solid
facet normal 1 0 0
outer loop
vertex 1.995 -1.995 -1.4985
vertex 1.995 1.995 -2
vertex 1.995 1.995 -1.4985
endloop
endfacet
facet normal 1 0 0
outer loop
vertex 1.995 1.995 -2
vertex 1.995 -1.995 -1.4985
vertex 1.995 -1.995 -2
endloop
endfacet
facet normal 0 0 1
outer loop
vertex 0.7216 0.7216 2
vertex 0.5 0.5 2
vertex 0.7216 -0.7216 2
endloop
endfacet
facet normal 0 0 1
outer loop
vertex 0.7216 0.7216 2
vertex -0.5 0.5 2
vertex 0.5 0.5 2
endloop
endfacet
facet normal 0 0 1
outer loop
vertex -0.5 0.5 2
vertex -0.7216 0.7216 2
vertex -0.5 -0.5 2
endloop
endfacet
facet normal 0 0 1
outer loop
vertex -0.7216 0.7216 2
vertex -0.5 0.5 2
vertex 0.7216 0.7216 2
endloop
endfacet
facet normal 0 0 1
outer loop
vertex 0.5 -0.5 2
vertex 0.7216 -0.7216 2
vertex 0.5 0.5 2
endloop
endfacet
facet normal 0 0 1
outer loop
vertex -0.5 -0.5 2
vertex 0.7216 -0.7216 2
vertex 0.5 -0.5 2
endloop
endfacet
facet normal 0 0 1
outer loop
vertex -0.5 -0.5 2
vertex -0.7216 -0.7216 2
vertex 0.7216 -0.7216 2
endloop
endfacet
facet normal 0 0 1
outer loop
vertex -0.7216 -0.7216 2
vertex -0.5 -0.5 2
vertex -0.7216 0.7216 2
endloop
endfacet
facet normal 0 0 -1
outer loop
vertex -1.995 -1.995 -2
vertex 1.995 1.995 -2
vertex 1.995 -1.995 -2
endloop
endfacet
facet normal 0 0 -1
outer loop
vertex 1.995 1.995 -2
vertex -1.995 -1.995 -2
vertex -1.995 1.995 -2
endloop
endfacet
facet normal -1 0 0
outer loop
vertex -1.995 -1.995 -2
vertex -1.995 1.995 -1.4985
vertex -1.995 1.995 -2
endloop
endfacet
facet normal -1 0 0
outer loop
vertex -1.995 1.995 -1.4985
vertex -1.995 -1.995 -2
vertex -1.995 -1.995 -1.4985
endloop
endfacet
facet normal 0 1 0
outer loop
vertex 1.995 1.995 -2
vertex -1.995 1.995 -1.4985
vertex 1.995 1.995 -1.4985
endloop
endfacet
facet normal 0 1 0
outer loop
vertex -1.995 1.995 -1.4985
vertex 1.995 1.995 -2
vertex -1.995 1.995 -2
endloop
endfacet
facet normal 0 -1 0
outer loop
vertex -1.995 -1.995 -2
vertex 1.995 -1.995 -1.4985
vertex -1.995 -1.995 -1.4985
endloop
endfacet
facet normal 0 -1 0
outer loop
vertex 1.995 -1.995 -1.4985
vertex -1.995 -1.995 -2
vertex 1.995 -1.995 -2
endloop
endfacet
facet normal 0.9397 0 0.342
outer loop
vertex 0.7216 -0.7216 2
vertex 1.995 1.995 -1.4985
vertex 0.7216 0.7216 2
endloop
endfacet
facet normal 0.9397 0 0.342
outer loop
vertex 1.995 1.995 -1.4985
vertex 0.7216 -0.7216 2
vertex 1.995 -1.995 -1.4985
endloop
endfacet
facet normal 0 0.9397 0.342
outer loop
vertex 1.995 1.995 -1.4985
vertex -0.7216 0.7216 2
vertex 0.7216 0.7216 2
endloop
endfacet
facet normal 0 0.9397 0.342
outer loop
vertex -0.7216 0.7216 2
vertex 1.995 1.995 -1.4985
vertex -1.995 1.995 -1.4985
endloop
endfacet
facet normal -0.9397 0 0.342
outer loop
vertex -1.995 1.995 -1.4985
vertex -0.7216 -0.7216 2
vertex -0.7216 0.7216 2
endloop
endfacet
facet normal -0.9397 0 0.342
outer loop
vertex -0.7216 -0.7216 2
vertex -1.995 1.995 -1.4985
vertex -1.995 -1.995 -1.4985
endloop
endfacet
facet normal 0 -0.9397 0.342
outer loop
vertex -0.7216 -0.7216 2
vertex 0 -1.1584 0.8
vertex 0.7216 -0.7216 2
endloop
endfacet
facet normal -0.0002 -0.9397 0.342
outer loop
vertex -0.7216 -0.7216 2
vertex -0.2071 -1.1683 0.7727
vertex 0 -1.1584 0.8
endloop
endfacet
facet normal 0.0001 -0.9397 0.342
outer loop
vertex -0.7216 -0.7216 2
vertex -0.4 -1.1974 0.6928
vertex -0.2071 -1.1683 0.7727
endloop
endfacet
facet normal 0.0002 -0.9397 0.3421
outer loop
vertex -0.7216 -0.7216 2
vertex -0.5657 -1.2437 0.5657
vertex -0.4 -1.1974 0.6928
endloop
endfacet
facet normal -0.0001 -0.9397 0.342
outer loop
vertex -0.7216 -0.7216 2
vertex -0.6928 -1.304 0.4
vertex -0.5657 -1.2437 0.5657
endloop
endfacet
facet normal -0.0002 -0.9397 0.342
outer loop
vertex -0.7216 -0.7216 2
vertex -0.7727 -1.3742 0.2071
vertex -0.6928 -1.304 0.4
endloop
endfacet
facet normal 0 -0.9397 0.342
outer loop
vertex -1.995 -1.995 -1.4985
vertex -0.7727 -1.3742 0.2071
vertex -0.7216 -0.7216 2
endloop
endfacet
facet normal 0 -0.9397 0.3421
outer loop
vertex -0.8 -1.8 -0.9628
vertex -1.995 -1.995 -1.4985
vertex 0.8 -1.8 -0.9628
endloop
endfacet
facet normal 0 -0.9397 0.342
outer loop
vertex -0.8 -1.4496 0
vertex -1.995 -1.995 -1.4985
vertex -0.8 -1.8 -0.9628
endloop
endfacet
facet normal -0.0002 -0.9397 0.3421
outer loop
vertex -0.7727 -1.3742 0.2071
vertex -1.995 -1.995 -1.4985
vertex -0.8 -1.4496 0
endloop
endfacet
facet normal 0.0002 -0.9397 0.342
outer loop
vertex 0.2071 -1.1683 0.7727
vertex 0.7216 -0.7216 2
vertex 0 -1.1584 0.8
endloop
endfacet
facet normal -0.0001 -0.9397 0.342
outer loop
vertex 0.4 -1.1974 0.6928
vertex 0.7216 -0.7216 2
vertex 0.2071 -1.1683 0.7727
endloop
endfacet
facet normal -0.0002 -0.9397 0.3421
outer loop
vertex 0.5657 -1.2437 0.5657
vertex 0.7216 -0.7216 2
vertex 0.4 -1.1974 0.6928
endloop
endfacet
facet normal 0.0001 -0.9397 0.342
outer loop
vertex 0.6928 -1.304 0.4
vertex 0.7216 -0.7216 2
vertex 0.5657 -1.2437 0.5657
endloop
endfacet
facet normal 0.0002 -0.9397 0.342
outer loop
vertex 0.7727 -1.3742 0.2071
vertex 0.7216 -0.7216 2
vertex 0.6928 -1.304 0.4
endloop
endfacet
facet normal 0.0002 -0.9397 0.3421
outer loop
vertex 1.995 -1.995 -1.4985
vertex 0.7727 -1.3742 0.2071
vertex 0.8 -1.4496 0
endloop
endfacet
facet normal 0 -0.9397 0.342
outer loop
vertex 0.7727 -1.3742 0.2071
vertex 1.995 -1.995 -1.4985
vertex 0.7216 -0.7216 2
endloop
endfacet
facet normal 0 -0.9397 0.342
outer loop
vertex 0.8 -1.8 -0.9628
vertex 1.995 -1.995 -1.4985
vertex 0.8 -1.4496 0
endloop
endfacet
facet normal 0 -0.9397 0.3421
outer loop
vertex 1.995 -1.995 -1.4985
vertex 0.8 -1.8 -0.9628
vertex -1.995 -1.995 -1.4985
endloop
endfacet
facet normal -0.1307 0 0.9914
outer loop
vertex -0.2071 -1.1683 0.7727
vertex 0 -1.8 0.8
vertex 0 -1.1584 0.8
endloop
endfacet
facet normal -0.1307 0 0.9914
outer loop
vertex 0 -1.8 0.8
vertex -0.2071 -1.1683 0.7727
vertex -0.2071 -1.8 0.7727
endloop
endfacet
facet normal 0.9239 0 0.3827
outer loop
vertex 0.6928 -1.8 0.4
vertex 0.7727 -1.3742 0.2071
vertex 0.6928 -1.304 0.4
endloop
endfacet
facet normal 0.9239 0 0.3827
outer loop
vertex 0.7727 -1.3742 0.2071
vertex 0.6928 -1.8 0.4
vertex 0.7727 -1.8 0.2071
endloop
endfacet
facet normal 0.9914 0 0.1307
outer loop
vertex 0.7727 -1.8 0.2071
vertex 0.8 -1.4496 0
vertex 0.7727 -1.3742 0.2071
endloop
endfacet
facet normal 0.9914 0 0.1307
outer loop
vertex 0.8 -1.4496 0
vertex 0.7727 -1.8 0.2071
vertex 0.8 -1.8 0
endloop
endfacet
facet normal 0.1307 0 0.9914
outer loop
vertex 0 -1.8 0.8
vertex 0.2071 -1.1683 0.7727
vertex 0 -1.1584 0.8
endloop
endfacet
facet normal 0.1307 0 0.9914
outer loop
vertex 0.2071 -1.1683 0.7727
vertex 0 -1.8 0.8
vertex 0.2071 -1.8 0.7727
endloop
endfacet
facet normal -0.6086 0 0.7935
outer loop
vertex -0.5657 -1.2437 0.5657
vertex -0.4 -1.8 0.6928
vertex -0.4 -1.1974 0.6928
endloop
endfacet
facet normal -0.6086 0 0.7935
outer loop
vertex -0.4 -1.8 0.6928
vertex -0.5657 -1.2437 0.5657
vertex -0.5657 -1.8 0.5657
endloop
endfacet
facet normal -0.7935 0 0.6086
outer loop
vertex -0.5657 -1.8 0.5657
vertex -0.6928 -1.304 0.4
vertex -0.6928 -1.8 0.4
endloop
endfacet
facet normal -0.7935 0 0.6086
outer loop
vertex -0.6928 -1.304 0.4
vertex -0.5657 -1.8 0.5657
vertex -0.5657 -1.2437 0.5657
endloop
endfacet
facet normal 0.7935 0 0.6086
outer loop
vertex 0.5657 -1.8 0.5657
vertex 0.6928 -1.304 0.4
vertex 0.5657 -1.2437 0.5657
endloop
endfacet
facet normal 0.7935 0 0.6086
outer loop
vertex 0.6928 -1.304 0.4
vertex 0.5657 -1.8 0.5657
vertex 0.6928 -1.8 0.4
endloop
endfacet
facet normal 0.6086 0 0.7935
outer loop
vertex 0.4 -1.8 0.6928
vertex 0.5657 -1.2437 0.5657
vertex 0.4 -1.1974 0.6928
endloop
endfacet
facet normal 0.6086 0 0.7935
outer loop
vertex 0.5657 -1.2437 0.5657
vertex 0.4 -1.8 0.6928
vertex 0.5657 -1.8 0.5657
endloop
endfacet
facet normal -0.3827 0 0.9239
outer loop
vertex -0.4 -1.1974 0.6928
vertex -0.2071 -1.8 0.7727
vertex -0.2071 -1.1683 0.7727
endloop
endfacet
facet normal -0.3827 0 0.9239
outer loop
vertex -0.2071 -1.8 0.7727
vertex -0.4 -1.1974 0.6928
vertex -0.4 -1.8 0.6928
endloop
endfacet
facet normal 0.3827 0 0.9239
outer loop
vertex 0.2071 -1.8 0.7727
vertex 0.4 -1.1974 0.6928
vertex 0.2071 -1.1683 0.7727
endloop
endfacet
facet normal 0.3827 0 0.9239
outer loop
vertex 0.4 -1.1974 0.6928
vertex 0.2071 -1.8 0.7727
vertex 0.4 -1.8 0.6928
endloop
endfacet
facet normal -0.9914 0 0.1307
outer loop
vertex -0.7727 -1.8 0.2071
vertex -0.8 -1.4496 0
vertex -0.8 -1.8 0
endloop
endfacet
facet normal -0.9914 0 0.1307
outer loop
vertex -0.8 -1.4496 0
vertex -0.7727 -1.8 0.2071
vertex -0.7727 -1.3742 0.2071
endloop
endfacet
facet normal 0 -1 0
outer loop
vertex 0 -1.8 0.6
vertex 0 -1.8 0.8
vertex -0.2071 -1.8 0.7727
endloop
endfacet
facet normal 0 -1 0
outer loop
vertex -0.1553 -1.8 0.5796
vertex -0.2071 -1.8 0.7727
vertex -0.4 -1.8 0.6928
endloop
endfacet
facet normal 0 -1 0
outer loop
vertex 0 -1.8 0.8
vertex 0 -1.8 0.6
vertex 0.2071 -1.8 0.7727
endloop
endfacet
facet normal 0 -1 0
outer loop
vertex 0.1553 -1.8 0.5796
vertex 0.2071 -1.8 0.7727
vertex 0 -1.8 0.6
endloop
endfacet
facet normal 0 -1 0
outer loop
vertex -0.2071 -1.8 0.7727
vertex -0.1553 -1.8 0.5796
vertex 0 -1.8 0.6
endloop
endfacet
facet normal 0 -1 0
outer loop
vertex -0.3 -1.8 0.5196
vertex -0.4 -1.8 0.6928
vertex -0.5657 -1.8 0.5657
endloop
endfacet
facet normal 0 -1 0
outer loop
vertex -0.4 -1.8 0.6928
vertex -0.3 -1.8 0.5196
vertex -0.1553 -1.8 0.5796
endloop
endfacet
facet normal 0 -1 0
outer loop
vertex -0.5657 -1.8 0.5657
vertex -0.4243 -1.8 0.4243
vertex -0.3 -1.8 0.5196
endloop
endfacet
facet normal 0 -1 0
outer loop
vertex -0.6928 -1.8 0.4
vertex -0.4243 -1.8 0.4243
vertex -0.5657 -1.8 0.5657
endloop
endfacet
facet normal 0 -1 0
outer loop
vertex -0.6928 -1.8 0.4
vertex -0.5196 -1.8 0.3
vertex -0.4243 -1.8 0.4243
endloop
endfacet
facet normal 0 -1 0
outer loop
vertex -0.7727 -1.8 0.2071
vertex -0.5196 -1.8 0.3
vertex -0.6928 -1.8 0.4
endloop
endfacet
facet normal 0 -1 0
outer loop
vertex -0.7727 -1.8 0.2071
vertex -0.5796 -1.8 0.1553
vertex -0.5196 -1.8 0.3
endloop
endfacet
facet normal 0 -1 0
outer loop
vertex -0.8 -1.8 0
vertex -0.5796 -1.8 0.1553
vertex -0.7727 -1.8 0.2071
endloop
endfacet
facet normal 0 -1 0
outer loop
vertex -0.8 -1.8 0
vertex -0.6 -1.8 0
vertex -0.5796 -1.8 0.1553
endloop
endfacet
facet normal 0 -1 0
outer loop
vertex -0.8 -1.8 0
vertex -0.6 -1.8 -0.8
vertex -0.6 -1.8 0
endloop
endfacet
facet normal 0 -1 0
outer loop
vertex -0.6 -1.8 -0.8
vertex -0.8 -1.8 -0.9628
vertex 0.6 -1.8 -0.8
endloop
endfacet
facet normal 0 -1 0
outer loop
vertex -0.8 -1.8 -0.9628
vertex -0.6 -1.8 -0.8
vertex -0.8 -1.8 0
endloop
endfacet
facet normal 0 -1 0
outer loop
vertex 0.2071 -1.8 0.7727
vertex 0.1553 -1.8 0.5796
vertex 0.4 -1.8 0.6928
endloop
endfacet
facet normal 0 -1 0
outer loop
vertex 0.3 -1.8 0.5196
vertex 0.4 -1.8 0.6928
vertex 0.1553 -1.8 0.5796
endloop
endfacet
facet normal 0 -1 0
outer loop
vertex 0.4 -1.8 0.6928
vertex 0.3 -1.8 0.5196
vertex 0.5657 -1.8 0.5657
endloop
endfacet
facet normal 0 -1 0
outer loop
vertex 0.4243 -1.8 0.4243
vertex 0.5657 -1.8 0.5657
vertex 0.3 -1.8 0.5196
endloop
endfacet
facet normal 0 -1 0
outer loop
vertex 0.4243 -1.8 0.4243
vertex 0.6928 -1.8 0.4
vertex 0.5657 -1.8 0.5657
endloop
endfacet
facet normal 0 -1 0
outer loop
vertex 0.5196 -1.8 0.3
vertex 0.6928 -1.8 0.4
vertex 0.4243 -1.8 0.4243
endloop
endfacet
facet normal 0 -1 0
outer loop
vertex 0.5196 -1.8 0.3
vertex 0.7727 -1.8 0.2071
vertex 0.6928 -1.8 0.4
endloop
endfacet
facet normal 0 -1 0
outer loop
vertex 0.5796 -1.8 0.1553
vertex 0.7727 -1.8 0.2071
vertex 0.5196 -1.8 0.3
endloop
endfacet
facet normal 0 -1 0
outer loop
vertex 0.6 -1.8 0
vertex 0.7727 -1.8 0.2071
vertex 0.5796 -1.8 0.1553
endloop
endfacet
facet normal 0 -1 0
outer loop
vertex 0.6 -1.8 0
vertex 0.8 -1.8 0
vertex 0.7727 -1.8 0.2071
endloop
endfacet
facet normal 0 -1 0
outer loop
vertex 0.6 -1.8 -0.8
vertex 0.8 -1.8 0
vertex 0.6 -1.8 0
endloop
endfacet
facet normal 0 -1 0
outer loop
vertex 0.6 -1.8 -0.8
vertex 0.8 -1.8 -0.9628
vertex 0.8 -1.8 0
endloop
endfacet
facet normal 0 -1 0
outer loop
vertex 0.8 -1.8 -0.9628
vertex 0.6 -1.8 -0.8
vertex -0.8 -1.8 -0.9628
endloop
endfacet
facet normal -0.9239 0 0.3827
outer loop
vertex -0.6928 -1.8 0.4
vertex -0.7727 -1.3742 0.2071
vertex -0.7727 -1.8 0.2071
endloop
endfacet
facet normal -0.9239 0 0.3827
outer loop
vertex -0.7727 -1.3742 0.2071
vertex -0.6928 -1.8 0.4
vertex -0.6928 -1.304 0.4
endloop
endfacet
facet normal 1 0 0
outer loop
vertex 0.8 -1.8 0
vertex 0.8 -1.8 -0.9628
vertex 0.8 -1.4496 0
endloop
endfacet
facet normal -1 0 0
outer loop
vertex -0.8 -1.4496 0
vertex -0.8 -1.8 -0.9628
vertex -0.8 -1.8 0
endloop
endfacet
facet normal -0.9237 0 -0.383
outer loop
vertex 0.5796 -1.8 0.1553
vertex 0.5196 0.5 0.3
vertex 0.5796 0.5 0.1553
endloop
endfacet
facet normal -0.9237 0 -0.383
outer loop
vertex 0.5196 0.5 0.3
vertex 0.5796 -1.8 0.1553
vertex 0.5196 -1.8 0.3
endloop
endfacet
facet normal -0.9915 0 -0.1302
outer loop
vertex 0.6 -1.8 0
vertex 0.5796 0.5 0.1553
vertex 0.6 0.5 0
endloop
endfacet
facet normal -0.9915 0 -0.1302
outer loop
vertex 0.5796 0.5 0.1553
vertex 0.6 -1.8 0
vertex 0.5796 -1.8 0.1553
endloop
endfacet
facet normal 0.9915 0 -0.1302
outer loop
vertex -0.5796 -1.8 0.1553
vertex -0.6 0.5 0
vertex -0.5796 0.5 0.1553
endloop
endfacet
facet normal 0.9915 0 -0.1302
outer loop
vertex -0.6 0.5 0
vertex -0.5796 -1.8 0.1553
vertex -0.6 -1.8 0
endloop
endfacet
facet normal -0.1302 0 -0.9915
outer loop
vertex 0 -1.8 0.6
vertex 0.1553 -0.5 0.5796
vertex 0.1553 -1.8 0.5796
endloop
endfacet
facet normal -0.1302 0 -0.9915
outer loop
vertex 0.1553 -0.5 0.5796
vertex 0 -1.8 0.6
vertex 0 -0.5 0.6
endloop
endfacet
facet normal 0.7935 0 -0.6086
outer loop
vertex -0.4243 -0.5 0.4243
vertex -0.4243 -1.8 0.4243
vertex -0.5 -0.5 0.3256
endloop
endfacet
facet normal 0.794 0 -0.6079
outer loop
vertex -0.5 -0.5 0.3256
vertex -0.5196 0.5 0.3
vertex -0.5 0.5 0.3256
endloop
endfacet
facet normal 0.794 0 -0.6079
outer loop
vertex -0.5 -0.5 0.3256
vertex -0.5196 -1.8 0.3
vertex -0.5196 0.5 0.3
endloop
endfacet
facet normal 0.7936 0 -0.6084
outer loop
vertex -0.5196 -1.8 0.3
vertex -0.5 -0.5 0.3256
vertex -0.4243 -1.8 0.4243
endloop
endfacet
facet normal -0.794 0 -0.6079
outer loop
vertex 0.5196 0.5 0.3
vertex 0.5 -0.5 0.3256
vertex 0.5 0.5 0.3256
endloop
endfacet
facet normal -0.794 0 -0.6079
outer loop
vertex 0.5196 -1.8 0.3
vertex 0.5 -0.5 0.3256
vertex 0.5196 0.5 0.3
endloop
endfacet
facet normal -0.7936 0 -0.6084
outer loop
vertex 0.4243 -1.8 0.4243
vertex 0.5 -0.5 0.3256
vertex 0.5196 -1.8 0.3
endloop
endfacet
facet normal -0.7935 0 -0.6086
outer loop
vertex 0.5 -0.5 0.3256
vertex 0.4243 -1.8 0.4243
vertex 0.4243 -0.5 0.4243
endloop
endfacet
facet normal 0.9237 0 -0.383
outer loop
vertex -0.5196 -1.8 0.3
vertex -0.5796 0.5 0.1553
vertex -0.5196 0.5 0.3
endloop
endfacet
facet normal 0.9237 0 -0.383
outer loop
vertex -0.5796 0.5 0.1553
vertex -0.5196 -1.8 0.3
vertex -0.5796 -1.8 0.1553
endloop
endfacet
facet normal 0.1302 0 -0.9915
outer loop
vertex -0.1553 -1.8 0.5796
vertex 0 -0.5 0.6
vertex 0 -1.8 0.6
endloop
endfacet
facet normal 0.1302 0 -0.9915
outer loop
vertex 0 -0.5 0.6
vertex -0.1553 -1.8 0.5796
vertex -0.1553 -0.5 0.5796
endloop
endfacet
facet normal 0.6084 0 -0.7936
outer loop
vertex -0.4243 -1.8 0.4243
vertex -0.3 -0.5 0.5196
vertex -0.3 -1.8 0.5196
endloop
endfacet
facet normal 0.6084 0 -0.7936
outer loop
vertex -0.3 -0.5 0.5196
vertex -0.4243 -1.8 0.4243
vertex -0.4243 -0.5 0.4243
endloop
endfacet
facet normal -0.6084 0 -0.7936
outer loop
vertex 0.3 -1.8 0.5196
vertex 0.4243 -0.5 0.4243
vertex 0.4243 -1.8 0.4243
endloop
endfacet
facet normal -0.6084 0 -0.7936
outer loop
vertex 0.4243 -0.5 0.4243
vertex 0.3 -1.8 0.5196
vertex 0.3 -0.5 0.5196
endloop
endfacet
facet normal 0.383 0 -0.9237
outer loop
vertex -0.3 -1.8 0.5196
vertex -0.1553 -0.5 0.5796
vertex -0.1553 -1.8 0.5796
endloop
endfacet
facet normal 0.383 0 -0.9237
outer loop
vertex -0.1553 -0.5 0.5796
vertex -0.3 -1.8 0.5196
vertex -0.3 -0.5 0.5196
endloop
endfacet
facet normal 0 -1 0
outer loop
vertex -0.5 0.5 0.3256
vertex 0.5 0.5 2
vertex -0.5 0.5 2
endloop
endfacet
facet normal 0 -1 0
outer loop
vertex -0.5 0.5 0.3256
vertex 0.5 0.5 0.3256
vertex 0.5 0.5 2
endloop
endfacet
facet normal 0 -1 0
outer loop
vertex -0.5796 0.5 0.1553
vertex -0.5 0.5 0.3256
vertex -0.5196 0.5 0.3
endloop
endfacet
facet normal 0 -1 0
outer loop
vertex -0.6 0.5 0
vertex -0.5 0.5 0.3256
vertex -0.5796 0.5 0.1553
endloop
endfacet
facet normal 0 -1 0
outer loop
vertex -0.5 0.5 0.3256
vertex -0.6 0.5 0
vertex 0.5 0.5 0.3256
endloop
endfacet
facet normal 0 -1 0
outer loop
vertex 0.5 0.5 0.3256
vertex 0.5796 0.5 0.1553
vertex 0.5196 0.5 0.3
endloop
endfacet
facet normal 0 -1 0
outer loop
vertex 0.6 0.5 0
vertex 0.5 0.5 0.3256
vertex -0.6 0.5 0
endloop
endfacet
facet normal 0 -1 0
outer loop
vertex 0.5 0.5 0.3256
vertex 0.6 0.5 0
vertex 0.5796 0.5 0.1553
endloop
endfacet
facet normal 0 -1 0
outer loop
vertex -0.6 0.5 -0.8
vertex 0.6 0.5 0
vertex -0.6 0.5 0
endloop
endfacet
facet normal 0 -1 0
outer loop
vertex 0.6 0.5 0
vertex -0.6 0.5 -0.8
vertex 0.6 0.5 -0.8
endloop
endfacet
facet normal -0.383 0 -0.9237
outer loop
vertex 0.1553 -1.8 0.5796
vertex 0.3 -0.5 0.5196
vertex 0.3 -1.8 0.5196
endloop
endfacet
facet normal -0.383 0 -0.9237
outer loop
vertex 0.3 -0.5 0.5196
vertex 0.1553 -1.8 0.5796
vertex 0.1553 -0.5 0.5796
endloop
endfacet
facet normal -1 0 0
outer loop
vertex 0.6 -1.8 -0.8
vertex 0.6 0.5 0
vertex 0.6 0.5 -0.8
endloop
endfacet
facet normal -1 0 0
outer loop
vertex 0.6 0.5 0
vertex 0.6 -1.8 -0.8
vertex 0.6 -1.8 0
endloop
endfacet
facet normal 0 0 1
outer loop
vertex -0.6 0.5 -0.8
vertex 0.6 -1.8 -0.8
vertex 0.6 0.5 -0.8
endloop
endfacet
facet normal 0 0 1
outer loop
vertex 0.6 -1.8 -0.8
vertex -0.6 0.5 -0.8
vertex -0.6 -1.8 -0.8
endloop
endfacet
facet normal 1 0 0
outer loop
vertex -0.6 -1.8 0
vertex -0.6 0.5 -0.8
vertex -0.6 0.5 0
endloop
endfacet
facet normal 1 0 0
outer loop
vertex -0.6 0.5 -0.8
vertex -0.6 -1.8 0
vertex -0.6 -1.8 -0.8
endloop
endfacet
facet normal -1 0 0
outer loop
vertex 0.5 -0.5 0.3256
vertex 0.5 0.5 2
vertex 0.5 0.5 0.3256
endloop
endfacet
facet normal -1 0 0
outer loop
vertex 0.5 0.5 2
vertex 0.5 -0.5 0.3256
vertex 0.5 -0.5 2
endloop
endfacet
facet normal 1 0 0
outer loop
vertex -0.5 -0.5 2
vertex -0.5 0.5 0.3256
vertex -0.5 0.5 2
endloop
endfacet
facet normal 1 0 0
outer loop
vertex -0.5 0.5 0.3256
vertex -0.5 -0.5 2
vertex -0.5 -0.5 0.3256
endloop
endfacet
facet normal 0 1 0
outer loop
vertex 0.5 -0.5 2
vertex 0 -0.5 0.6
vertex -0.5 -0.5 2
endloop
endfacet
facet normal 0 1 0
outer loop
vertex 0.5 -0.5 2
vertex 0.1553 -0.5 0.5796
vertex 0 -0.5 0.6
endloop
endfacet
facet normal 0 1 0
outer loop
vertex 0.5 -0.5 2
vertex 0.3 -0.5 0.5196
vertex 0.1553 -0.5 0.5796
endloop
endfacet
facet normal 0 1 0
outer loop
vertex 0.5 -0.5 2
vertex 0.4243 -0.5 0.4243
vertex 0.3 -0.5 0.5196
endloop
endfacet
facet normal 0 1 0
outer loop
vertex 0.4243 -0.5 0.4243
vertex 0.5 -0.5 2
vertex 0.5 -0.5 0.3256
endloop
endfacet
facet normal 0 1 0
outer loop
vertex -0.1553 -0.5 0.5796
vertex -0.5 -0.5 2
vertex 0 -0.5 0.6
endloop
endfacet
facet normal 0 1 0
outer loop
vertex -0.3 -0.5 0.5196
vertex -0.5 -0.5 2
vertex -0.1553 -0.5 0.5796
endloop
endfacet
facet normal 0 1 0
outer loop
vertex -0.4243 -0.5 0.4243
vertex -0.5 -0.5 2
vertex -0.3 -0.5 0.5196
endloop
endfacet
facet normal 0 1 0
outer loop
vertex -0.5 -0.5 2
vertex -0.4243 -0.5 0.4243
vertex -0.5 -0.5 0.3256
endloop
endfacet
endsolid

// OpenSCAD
// file: lib.scad
function x(v) = v[0];
function y(v) = v[1];
function z(v) = v[2];
function add(v1,v2) = [ for (i = [ 0 : len(v1)-1 ]) v1[i] + v2[i] ];
function xv(d) = [d,0,0];
function yv(d) = [0,d,0];
function zv(d) = [0,0,d];

module box(v) { cube(size=v, center=true); }
module cyl(r1,r2,h) { cylinder(r1=r1, r2=r2, h=h, center=true); }

function grow(n,v) = [x(v)+n*2, y(v)+n*2, z(v)+n*2];

module rbox(v, radius=1) {
	cx = x(v)/2-radius;
	cy = y(v)/2-radius;
	cz = z(v)/2-radius;

	hull() {
		translate([cx,cy,cz]) sphere(r=radius);
		translate([cx,cy,-cz]) sphere(r=radius);
		translate([cx,-cy,cz]) sphere(r=radius);
		translate([cx,-cy,-cz]) sphere(r=radius);
		translate([-cx,cy,cz]) sphere(r=radius);
		translate([-cx,cy,-cz]) sphere(r=radius);
		translate([-cx,-cy,cz]) sphere(r=radius);
		translate([-cx,-cy,-cz]) sphere(r=radius);
	}
}

module fillet(r=1) {
  minkowski() {
    difference() {
      children();
      minkowski() {
        difference() {
          minkowski() {
            children();
            sphere(r=r);
          }
          children();
        }
        sphere(r=r);
      }
    }
    sphere(r=r);
  }
}
// main file
use <lib.scad>

bounds = [3.99,3.99,4];

difference() {
	union() {
		difference() {
			box(bounds);
			rotate([0,0,000]) translate([bounds.x/1.4,0,bounds.z/2]) rotate([0,70,0]) box([x(bounds)*2,y(bounds),z(bounds)]);
			rotate([0,0,090]) translate([bounds.x/1.4,0,bounds.z/2]) rotate([0,70,0]) box([x(bounds)*2,y(bounds),z(bounds)]);
			rotate([0,0,180]) translate([bounds.x/1.4,0,bounds.z/2]) rotate([0,70,0]) box([x(bounds)*2,y(bounds),z(bounds)]);
			rotate([0,0,270]) translate([bounds.x/1.4,0,bounds.z/2]) rotate([0,70,0]) box([x(bounds)*2,y(bounds),z(bounds)]);
		}
		translate([0,-1.3,0]) union() {
			rotate([90,0,0]) cyl(0.8,0.8,1,$fn=24);
			translate([0,0,-0.8]) box([1.6, 1, 1.6]);
		}
	}
	difference() {
		translate([0,-1,0]) union() {
			rotate([90,0,0]) cyl(0.6,0.6,3,$fn=24);
			translate([0,0,-0.4]) box([1.2, 3, 0.8]);
		}
	}
	translate([0,0,1.5]) box([1,1,4]);
}
